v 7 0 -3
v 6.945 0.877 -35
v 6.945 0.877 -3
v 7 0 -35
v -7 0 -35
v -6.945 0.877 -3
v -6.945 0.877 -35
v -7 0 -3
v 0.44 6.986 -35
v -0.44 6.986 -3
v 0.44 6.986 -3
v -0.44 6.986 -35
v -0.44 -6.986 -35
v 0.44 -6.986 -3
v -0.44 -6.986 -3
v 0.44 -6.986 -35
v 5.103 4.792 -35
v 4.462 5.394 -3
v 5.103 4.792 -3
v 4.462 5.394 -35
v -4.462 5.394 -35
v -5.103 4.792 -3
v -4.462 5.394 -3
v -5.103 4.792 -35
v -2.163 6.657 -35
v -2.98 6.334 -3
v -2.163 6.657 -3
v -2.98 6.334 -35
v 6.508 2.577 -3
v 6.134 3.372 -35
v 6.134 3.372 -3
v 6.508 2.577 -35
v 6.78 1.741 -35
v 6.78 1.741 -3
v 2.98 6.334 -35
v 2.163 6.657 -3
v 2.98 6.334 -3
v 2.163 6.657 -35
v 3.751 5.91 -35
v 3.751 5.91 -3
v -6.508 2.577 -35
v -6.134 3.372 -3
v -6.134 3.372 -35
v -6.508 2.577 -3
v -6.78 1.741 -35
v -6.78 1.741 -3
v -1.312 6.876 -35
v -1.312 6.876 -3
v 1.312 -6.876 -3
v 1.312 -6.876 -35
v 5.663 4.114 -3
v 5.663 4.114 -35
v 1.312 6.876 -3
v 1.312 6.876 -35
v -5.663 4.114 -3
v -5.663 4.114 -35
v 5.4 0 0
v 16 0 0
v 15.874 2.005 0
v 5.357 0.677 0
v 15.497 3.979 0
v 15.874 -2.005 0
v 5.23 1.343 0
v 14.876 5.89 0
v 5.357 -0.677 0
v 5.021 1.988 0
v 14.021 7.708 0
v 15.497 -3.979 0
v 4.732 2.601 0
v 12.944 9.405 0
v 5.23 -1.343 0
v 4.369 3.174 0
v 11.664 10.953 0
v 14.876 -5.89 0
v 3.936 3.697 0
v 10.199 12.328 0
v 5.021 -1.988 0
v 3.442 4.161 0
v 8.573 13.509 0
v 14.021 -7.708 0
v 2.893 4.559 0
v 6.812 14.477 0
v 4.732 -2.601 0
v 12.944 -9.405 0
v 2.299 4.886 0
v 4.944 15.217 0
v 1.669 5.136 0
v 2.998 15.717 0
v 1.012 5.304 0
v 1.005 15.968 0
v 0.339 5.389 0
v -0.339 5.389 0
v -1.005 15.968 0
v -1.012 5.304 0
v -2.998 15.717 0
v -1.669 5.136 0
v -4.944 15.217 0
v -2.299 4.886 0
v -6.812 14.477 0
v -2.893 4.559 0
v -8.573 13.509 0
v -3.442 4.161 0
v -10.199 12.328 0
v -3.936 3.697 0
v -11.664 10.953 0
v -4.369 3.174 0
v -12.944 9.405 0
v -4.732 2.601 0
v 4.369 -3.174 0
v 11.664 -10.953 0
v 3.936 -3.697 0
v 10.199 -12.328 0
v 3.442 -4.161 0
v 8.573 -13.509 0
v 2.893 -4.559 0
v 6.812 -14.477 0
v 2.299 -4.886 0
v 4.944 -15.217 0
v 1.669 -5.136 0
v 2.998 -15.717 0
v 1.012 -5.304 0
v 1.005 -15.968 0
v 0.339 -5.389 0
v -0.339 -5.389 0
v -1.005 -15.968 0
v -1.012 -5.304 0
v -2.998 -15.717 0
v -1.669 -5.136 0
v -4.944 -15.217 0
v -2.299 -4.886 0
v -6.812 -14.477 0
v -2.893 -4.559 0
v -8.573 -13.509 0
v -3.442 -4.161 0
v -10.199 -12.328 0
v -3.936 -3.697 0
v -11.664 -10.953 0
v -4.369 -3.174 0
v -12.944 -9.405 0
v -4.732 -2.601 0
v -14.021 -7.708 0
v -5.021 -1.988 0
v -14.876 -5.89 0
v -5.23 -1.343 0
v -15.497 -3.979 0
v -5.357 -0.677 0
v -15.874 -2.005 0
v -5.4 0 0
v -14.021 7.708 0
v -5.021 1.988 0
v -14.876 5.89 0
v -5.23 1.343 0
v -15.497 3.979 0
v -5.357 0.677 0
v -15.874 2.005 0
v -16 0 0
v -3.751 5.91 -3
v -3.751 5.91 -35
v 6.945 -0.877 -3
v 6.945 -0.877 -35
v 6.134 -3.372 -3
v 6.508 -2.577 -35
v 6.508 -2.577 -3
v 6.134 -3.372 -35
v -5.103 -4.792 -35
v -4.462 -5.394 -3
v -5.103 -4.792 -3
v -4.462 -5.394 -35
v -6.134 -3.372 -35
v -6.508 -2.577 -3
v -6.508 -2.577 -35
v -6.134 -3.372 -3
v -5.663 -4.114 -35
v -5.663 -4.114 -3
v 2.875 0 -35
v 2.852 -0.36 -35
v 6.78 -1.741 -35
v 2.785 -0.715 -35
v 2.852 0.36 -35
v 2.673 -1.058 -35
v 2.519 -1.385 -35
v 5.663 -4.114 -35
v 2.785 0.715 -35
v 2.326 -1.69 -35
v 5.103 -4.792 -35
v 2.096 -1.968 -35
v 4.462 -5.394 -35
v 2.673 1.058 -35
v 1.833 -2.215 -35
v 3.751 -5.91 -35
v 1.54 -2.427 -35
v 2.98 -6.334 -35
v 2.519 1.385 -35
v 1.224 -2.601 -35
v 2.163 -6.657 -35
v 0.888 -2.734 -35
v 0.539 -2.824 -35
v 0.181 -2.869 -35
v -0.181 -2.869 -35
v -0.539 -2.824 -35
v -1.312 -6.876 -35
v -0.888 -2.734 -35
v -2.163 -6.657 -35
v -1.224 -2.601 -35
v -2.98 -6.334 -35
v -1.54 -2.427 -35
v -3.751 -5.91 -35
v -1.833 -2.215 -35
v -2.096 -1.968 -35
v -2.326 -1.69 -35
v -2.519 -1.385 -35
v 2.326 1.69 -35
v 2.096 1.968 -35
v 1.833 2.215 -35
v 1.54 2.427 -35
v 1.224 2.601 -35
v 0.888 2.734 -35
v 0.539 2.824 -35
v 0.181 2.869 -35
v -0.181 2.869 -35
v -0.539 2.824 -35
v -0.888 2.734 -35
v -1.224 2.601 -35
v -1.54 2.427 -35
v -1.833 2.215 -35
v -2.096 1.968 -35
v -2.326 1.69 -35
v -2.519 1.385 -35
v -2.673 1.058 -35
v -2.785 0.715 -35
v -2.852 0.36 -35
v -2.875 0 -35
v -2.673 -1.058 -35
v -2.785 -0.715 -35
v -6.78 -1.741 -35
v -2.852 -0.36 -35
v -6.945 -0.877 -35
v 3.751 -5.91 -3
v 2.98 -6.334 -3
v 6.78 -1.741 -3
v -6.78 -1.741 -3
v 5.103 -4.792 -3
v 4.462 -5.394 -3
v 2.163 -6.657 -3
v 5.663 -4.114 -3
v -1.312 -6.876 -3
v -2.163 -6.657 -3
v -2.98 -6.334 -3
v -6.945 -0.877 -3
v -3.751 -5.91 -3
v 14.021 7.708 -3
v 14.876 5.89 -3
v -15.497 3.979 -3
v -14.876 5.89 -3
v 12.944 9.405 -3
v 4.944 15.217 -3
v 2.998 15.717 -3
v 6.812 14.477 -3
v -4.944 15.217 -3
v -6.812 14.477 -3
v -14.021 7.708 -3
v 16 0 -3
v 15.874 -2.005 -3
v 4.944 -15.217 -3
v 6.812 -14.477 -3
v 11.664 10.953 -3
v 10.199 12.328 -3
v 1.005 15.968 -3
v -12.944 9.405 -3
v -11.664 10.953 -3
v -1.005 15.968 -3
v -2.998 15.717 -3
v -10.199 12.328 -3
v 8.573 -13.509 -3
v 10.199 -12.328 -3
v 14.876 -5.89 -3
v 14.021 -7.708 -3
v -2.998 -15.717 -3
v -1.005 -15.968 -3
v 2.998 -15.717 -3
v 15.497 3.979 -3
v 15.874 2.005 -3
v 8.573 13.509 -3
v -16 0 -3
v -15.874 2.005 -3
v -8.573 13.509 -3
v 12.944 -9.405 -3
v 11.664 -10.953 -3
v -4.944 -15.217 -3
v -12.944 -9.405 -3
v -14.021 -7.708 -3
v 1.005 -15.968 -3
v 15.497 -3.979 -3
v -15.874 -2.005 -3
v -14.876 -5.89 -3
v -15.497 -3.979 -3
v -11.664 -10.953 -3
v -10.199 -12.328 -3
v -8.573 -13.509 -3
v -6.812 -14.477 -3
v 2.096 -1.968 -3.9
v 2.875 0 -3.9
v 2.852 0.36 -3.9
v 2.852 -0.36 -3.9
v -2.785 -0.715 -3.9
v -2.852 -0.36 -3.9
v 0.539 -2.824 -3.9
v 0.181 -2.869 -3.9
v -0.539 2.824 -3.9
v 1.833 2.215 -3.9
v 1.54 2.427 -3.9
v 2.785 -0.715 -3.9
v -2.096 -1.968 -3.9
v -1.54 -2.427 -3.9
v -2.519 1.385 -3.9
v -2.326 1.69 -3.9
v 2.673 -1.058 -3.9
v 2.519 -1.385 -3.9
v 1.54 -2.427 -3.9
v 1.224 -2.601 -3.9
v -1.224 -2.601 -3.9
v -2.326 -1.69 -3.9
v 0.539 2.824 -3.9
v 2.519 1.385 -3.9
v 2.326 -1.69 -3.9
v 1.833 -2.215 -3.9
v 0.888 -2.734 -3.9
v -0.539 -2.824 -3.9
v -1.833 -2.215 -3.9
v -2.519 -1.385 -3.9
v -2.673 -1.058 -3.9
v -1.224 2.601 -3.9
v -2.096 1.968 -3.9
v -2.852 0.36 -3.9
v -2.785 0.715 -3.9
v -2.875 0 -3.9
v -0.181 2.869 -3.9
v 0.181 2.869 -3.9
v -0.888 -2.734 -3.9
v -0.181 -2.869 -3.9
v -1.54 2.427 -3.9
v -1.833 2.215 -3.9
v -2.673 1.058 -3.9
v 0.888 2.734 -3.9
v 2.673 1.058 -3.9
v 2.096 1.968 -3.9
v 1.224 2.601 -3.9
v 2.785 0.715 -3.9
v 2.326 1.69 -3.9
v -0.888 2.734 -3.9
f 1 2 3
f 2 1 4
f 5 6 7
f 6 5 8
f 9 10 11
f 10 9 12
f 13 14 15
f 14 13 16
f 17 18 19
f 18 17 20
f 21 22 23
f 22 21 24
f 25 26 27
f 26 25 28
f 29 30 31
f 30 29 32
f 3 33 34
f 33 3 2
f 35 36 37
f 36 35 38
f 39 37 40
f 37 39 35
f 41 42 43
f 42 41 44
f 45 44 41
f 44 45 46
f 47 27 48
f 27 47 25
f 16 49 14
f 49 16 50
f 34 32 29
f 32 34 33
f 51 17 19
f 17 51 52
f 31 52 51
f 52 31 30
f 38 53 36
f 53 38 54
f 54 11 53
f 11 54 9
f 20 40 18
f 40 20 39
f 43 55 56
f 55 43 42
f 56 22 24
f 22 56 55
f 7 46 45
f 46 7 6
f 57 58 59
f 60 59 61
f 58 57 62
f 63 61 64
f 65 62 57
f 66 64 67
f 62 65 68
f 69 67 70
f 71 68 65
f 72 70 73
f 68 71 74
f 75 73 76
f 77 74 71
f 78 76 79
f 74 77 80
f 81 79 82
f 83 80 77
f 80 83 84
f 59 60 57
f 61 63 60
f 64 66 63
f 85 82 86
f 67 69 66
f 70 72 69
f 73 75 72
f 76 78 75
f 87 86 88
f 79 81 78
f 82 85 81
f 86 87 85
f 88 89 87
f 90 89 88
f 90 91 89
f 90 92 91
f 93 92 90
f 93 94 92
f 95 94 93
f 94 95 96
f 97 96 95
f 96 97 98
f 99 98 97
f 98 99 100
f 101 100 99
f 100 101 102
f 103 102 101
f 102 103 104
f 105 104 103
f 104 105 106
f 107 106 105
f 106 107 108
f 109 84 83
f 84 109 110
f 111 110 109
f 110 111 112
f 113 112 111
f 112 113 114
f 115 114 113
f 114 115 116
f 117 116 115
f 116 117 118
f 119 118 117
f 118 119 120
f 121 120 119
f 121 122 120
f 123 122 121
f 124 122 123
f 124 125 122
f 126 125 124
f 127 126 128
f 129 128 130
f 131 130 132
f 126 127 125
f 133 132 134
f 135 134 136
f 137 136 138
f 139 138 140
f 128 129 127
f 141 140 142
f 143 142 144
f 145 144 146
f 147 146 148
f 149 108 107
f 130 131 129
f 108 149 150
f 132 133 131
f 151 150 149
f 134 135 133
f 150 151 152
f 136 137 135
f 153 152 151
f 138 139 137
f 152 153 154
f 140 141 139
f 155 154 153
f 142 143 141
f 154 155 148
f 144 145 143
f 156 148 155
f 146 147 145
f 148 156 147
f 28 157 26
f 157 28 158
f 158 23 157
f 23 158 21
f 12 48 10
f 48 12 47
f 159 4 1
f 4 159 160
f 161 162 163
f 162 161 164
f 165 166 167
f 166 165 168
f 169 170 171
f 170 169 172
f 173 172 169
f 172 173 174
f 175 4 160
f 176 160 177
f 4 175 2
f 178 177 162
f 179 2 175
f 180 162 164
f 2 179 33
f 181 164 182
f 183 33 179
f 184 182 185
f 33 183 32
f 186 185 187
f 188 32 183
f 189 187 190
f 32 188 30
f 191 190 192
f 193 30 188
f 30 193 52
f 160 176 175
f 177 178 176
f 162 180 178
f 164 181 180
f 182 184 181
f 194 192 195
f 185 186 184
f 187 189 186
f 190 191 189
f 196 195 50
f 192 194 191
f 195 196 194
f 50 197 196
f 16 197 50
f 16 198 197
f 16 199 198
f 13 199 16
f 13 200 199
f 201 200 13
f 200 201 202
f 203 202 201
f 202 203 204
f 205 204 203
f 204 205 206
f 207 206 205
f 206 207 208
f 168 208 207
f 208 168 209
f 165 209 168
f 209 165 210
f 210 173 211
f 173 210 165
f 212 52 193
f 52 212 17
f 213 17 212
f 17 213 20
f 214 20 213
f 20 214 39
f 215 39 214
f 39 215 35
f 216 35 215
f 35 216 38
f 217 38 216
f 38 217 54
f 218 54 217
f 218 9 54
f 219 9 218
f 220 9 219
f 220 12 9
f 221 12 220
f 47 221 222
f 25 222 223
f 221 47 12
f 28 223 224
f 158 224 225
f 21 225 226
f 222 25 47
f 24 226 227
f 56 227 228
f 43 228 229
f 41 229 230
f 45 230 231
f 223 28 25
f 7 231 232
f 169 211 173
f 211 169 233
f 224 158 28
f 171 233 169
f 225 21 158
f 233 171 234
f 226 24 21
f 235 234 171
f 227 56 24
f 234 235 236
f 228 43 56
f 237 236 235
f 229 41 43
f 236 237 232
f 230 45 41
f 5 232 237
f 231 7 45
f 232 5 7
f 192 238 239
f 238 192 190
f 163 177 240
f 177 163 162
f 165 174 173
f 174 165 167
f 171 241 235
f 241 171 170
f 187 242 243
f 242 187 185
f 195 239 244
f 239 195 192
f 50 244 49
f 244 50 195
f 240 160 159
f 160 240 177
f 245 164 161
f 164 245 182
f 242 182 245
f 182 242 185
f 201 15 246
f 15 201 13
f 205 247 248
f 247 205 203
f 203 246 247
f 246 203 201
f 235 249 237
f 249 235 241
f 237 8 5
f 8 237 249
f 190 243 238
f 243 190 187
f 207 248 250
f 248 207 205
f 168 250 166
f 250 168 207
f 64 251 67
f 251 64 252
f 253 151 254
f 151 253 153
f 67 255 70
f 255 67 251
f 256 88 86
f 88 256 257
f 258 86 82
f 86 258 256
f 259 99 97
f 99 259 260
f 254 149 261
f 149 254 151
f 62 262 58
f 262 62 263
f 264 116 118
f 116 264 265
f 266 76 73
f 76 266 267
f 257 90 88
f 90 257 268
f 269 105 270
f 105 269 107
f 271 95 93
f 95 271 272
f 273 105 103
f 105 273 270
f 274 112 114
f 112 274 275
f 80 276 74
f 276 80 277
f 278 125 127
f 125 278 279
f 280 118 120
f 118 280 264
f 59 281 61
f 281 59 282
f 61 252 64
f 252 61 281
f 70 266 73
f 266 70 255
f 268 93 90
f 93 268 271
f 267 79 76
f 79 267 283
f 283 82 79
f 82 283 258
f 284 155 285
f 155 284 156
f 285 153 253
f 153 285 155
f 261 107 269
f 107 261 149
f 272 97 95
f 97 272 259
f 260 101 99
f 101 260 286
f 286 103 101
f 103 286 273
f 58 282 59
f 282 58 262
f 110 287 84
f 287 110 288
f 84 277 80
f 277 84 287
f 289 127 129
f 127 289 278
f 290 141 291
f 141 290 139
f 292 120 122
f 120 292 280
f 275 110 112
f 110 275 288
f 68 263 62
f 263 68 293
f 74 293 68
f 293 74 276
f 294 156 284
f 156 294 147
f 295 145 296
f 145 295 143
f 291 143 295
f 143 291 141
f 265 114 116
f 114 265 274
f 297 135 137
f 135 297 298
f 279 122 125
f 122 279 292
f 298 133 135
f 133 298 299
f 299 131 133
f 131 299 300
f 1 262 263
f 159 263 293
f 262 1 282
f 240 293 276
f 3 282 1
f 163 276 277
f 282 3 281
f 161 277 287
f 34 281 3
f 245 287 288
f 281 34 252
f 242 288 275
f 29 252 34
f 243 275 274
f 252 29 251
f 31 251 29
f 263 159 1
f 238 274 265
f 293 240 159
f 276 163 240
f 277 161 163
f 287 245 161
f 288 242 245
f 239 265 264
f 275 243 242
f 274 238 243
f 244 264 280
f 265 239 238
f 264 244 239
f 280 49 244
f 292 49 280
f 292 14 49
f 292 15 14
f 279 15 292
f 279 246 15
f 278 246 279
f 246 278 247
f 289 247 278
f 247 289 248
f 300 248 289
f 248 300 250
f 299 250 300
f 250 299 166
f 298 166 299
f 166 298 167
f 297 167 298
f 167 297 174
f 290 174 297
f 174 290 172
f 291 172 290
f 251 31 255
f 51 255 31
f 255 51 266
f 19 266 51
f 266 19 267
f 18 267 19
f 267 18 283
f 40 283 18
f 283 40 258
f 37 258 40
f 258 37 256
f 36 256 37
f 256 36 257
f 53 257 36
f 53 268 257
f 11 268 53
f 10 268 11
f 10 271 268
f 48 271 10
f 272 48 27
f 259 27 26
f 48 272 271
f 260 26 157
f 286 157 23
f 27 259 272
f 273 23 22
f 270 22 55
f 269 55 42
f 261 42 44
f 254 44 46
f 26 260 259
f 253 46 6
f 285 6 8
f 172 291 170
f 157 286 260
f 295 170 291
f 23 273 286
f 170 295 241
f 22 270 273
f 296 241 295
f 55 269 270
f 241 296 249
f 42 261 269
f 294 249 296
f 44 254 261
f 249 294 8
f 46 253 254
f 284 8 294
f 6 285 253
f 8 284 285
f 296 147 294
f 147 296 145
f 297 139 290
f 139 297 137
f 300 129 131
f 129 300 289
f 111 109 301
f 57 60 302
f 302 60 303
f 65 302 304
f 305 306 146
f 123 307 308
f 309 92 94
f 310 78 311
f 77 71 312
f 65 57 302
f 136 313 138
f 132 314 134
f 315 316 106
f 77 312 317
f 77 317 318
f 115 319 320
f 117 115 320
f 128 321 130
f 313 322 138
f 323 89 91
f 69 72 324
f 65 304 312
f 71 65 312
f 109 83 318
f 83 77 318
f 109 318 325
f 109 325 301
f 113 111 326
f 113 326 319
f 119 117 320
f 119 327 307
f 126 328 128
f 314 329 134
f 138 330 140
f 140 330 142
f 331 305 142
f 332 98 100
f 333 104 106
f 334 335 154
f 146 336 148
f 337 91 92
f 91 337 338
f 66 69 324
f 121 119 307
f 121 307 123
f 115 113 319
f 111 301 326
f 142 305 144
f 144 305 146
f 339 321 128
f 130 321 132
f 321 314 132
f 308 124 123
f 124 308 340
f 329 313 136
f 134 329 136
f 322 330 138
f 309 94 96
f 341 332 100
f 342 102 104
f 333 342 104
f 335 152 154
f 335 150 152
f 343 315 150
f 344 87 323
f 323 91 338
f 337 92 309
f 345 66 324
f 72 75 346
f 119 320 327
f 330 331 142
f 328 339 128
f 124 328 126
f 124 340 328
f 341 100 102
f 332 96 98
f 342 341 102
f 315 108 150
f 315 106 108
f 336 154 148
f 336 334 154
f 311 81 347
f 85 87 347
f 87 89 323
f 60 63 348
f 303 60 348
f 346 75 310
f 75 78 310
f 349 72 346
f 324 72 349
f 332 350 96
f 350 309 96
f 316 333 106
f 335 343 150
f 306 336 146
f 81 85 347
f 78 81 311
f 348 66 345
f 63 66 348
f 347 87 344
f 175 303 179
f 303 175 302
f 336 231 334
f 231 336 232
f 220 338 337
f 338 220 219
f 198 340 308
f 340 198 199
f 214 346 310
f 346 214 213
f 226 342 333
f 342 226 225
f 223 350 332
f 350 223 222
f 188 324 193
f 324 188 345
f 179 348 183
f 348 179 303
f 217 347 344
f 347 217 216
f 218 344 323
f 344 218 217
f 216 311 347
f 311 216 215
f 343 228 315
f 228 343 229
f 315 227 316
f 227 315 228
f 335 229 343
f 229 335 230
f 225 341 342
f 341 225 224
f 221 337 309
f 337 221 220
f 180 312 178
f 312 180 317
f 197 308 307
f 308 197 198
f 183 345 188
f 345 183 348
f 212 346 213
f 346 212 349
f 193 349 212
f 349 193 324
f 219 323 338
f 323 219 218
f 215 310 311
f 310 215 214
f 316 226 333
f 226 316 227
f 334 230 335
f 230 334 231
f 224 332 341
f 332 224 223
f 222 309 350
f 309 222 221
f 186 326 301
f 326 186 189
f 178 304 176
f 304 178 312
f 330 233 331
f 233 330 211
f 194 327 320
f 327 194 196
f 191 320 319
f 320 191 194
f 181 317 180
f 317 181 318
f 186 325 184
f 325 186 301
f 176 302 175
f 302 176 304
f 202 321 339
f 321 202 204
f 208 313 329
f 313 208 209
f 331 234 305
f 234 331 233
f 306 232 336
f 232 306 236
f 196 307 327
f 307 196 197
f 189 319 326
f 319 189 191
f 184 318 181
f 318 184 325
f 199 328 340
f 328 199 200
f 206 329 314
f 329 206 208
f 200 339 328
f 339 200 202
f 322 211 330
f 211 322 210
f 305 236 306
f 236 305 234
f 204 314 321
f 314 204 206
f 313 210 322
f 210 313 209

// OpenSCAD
$fn = 50;


difference() {
	union() {
		translate(v = [0, 0, -35.0000000000]) {
			cylinder(h = 35, r = 7.0000000000);
		}
		translate(v = [0, 0, -3.0000000000]) {
			cylinder(h = 3, r = 16.0000000000);
		}
	}
	union() {
		translate(v = [0, 0, 0]) {
			rotate(a = [0, 0, 0]) {
				difference() {
					union() {
						#translate(v = [0, 0, -35.0000000000]) {
							cylinder(h = 35, r = 2.6000000000);
						}
						#translate(v = [0, 0, -3.9000000000]) {
							cylinder(h = 3.9000000000, r = 7.0000000000, r1 = 2.8750000000, r2 = 5.4000000000);
						}
						#translate(v = [0, 0, -35.0000000000]) {
							cylinder(h = 35, r = 2.8750000000);
						}
						#translate(v = [0, 0, -35.0000000000]) {
							cylinder(h = 35, r = 2.6000000000);
						}
					}
					union();
				}
			}
		}
	}
}
